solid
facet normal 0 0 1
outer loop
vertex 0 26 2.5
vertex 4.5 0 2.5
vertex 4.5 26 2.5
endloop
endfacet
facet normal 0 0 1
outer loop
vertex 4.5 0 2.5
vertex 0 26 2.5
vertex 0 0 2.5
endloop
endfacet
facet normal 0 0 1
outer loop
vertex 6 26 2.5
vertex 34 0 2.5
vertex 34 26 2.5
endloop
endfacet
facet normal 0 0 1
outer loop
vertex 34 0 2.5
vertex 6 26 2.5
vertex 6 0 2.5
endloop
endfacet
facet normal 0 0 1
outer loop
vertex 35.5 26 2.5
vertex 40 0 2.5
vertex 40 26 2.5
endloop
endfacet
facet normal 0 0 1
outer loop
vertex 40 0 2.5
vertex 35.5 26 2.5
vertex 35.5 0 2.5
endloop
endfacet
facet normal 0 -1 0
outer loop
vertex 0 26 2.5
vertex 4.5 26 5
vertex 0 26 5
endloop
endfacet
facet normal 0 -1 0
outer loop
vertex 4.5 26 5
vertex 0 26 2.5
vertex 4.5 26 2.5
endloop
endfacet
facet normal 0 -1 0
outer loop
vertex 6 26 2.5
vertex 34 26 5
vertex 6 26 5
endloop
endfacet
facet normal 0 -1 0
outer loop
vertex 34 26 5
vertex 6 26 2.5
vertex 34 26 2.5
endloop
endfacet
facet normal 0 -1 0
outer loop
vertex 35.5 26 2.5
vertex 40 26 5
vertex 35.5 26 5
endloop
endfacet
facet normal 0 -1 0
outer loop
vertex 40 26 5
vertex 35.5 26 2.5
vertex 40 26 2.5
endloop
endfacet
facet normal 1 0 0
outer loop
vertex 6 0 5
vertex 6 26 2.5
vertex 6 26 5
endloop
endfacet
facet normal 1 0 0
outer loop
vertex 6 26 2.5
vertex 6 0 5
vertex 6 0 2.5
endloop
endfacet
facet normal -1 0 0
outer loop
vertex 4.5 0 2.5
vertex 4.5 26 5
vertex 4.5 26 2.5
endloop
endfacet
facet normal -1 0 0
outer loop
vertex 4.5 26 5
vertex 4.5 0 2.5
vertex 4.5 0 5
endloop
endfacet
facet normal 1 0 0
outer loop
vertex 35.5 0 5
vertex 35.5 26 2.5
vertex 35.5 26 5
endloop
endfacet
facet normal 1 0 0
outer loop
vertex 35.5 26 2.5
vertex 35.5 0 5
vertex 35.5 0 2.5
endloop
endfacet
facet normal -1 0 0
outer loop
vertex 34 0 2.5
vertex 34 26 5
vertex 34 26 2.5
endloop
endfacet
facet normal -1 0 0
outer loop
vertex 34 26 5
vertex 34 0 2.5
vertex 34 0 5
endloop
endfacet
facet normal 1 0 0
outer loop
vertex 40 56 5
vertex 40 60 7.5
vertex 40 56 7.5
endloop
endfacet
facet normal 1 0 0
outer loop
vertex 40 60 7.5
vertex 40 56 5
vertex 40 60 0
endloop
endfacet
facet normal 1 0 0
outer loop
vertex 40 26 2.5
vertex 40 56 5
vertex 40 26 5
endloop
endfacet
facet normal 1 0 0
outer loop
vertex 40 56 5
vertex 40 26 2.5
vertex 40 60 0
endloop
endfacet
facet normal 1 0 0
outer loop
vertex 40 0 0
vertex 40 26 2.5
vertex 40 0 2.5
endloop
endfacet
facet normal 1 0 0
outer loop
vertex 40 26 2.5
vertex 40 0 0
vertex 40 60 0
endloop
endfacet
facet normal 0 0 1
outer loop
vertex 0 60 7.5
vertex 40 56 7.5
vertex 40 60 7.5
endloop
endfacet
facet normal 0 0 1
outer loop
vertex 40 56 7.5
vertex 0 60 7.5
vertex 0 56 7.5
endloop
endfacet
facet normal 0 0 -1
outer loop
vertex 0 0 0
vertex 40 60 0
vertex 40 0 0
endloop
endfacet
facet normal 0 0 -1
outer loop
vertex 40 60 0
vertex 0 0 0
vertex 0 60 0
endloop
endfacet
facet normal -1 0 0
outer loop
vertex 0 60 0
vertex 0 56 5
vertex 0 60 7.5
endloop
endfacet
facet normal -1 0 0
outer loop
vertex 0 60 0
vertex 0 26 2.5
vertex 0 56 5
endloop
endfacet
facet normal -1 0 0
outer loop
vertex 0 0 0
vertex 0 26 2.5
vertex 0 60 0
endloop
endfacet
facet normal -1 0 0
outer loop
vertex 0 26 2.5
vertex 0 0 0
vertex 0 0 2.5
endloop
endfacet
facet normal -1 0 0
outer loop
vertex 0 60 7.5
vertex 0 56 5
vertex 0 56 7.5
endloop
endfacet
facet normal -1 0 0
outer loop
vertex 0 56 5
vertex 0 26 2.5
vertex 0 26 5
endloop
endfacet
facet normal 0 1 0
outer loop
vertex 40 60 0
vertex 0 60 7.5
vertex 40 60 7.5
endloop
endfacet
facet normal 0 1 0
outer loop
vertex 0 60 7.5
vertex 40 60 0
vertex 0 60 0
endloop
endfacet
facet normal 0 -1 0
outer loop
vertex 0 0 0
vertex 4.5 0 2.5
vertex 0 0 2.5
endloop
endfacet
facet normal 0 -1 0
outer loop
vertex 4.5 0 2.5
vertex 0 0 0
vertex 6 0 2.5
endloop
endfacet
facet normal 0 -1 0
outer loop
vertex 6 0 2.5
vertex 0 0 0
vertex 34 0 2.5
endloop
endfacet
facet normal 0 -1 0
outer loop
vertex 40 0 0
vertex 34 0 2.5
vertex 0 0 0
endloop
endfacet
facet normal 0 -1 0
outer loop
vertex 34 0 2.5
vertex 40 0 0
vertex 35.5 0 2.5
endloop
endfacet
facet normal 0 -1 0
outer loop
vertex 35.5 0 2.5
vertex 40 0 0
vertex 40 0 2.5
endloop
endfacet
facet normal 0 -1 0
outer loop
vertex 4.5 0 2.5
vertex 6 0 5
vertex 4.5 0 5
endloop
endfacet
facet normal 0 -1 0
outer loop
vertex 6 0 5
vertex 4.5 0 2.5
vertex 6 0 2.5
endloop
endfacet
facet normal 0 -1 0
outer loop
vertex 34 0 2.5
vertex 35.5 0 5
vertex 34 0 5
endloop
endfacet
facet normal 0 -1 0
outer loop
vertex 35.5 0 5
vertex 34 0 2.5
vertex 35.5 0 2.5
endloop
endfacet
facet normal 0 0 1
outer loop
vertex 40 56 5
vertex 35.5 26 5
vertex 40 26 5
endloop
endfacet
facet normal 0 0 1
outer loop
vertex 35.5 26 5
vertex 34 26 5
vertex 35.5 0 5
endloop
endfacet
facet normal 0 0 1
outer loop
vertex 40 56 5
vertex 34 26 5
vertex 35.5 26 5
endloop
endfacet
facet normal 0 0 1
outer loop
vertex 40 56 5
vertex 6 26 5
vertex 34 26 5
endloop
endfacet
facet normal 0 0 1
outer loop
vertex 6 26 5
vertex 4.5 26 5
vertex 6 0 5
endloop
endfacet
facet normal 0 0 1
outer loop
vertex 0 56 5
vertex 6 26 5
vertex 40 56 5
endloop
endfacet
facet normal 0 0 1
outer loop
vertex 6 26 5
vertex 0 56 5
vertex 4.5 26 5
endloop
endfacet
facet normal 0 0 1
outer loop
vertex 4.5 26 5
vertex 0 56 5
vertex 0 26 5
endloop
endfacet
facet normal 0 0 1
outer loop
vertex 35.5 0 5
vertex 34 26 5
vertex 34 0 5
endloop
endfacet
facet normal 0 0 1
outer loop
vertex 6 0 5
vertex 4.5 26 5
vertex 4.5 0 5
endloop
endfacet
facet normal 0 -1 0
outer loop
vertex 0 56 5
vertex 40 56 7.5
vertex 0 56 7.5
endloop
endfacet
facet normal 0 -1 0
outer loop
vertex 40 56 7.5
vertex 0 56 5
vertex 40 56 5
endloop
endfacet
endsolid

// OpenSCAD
/**
 * a rummy stand
 * Created by Diego Viejo
 * 08/Jun/2020
 * 
 */

pieceLength = 30;
pieceWidth = 25;
pieceHeight = 2.5;

lateralHeight = 4;

Width = 40;//pieceWidth*10 + (lateralHeight+2)*2;
Length = 2*pieceLength;
Height = pieceHeight; //for each layer

stand();

//lateral();

module stand()
difference()
{
    cube([Width, Length, 3*Height]);
    
    translate([-1, -1, Height*2]) cube([Width+2, 2*pieceLength-3, Height+1]);
    difference()
    {
        translate([-1, -1, Height]) cube([Width+2, pieceLength-3, Height+1]);
        
        translate([lateralHeight+0.5, -2, Height-1]) cube([1.5, pieceLength, Height+2]);
        translate([Width-lateralHeight-0.5-1.5, -2, Height-1]) cube([1.5, pieceLength, Height+2]);
    }
}

slope = 15;
module lateral()
difference()
{
    hull()
    {
        cylinder(d=13, h=lateralHeight);
        translate([30, 0, 0]) cylinder(d=13, h=lateralHeight);
        rotate(-slope-3) translate([0, Length, 0]) cylinder(d=13, h=lateralHeight);
    }
    
    translate([5, 0, 0]) rotate(180-slope) 
        translate([0, -Length, 20]) 
            rotate([0, 90, 0]) 
                scale(1.075) stand();
}
